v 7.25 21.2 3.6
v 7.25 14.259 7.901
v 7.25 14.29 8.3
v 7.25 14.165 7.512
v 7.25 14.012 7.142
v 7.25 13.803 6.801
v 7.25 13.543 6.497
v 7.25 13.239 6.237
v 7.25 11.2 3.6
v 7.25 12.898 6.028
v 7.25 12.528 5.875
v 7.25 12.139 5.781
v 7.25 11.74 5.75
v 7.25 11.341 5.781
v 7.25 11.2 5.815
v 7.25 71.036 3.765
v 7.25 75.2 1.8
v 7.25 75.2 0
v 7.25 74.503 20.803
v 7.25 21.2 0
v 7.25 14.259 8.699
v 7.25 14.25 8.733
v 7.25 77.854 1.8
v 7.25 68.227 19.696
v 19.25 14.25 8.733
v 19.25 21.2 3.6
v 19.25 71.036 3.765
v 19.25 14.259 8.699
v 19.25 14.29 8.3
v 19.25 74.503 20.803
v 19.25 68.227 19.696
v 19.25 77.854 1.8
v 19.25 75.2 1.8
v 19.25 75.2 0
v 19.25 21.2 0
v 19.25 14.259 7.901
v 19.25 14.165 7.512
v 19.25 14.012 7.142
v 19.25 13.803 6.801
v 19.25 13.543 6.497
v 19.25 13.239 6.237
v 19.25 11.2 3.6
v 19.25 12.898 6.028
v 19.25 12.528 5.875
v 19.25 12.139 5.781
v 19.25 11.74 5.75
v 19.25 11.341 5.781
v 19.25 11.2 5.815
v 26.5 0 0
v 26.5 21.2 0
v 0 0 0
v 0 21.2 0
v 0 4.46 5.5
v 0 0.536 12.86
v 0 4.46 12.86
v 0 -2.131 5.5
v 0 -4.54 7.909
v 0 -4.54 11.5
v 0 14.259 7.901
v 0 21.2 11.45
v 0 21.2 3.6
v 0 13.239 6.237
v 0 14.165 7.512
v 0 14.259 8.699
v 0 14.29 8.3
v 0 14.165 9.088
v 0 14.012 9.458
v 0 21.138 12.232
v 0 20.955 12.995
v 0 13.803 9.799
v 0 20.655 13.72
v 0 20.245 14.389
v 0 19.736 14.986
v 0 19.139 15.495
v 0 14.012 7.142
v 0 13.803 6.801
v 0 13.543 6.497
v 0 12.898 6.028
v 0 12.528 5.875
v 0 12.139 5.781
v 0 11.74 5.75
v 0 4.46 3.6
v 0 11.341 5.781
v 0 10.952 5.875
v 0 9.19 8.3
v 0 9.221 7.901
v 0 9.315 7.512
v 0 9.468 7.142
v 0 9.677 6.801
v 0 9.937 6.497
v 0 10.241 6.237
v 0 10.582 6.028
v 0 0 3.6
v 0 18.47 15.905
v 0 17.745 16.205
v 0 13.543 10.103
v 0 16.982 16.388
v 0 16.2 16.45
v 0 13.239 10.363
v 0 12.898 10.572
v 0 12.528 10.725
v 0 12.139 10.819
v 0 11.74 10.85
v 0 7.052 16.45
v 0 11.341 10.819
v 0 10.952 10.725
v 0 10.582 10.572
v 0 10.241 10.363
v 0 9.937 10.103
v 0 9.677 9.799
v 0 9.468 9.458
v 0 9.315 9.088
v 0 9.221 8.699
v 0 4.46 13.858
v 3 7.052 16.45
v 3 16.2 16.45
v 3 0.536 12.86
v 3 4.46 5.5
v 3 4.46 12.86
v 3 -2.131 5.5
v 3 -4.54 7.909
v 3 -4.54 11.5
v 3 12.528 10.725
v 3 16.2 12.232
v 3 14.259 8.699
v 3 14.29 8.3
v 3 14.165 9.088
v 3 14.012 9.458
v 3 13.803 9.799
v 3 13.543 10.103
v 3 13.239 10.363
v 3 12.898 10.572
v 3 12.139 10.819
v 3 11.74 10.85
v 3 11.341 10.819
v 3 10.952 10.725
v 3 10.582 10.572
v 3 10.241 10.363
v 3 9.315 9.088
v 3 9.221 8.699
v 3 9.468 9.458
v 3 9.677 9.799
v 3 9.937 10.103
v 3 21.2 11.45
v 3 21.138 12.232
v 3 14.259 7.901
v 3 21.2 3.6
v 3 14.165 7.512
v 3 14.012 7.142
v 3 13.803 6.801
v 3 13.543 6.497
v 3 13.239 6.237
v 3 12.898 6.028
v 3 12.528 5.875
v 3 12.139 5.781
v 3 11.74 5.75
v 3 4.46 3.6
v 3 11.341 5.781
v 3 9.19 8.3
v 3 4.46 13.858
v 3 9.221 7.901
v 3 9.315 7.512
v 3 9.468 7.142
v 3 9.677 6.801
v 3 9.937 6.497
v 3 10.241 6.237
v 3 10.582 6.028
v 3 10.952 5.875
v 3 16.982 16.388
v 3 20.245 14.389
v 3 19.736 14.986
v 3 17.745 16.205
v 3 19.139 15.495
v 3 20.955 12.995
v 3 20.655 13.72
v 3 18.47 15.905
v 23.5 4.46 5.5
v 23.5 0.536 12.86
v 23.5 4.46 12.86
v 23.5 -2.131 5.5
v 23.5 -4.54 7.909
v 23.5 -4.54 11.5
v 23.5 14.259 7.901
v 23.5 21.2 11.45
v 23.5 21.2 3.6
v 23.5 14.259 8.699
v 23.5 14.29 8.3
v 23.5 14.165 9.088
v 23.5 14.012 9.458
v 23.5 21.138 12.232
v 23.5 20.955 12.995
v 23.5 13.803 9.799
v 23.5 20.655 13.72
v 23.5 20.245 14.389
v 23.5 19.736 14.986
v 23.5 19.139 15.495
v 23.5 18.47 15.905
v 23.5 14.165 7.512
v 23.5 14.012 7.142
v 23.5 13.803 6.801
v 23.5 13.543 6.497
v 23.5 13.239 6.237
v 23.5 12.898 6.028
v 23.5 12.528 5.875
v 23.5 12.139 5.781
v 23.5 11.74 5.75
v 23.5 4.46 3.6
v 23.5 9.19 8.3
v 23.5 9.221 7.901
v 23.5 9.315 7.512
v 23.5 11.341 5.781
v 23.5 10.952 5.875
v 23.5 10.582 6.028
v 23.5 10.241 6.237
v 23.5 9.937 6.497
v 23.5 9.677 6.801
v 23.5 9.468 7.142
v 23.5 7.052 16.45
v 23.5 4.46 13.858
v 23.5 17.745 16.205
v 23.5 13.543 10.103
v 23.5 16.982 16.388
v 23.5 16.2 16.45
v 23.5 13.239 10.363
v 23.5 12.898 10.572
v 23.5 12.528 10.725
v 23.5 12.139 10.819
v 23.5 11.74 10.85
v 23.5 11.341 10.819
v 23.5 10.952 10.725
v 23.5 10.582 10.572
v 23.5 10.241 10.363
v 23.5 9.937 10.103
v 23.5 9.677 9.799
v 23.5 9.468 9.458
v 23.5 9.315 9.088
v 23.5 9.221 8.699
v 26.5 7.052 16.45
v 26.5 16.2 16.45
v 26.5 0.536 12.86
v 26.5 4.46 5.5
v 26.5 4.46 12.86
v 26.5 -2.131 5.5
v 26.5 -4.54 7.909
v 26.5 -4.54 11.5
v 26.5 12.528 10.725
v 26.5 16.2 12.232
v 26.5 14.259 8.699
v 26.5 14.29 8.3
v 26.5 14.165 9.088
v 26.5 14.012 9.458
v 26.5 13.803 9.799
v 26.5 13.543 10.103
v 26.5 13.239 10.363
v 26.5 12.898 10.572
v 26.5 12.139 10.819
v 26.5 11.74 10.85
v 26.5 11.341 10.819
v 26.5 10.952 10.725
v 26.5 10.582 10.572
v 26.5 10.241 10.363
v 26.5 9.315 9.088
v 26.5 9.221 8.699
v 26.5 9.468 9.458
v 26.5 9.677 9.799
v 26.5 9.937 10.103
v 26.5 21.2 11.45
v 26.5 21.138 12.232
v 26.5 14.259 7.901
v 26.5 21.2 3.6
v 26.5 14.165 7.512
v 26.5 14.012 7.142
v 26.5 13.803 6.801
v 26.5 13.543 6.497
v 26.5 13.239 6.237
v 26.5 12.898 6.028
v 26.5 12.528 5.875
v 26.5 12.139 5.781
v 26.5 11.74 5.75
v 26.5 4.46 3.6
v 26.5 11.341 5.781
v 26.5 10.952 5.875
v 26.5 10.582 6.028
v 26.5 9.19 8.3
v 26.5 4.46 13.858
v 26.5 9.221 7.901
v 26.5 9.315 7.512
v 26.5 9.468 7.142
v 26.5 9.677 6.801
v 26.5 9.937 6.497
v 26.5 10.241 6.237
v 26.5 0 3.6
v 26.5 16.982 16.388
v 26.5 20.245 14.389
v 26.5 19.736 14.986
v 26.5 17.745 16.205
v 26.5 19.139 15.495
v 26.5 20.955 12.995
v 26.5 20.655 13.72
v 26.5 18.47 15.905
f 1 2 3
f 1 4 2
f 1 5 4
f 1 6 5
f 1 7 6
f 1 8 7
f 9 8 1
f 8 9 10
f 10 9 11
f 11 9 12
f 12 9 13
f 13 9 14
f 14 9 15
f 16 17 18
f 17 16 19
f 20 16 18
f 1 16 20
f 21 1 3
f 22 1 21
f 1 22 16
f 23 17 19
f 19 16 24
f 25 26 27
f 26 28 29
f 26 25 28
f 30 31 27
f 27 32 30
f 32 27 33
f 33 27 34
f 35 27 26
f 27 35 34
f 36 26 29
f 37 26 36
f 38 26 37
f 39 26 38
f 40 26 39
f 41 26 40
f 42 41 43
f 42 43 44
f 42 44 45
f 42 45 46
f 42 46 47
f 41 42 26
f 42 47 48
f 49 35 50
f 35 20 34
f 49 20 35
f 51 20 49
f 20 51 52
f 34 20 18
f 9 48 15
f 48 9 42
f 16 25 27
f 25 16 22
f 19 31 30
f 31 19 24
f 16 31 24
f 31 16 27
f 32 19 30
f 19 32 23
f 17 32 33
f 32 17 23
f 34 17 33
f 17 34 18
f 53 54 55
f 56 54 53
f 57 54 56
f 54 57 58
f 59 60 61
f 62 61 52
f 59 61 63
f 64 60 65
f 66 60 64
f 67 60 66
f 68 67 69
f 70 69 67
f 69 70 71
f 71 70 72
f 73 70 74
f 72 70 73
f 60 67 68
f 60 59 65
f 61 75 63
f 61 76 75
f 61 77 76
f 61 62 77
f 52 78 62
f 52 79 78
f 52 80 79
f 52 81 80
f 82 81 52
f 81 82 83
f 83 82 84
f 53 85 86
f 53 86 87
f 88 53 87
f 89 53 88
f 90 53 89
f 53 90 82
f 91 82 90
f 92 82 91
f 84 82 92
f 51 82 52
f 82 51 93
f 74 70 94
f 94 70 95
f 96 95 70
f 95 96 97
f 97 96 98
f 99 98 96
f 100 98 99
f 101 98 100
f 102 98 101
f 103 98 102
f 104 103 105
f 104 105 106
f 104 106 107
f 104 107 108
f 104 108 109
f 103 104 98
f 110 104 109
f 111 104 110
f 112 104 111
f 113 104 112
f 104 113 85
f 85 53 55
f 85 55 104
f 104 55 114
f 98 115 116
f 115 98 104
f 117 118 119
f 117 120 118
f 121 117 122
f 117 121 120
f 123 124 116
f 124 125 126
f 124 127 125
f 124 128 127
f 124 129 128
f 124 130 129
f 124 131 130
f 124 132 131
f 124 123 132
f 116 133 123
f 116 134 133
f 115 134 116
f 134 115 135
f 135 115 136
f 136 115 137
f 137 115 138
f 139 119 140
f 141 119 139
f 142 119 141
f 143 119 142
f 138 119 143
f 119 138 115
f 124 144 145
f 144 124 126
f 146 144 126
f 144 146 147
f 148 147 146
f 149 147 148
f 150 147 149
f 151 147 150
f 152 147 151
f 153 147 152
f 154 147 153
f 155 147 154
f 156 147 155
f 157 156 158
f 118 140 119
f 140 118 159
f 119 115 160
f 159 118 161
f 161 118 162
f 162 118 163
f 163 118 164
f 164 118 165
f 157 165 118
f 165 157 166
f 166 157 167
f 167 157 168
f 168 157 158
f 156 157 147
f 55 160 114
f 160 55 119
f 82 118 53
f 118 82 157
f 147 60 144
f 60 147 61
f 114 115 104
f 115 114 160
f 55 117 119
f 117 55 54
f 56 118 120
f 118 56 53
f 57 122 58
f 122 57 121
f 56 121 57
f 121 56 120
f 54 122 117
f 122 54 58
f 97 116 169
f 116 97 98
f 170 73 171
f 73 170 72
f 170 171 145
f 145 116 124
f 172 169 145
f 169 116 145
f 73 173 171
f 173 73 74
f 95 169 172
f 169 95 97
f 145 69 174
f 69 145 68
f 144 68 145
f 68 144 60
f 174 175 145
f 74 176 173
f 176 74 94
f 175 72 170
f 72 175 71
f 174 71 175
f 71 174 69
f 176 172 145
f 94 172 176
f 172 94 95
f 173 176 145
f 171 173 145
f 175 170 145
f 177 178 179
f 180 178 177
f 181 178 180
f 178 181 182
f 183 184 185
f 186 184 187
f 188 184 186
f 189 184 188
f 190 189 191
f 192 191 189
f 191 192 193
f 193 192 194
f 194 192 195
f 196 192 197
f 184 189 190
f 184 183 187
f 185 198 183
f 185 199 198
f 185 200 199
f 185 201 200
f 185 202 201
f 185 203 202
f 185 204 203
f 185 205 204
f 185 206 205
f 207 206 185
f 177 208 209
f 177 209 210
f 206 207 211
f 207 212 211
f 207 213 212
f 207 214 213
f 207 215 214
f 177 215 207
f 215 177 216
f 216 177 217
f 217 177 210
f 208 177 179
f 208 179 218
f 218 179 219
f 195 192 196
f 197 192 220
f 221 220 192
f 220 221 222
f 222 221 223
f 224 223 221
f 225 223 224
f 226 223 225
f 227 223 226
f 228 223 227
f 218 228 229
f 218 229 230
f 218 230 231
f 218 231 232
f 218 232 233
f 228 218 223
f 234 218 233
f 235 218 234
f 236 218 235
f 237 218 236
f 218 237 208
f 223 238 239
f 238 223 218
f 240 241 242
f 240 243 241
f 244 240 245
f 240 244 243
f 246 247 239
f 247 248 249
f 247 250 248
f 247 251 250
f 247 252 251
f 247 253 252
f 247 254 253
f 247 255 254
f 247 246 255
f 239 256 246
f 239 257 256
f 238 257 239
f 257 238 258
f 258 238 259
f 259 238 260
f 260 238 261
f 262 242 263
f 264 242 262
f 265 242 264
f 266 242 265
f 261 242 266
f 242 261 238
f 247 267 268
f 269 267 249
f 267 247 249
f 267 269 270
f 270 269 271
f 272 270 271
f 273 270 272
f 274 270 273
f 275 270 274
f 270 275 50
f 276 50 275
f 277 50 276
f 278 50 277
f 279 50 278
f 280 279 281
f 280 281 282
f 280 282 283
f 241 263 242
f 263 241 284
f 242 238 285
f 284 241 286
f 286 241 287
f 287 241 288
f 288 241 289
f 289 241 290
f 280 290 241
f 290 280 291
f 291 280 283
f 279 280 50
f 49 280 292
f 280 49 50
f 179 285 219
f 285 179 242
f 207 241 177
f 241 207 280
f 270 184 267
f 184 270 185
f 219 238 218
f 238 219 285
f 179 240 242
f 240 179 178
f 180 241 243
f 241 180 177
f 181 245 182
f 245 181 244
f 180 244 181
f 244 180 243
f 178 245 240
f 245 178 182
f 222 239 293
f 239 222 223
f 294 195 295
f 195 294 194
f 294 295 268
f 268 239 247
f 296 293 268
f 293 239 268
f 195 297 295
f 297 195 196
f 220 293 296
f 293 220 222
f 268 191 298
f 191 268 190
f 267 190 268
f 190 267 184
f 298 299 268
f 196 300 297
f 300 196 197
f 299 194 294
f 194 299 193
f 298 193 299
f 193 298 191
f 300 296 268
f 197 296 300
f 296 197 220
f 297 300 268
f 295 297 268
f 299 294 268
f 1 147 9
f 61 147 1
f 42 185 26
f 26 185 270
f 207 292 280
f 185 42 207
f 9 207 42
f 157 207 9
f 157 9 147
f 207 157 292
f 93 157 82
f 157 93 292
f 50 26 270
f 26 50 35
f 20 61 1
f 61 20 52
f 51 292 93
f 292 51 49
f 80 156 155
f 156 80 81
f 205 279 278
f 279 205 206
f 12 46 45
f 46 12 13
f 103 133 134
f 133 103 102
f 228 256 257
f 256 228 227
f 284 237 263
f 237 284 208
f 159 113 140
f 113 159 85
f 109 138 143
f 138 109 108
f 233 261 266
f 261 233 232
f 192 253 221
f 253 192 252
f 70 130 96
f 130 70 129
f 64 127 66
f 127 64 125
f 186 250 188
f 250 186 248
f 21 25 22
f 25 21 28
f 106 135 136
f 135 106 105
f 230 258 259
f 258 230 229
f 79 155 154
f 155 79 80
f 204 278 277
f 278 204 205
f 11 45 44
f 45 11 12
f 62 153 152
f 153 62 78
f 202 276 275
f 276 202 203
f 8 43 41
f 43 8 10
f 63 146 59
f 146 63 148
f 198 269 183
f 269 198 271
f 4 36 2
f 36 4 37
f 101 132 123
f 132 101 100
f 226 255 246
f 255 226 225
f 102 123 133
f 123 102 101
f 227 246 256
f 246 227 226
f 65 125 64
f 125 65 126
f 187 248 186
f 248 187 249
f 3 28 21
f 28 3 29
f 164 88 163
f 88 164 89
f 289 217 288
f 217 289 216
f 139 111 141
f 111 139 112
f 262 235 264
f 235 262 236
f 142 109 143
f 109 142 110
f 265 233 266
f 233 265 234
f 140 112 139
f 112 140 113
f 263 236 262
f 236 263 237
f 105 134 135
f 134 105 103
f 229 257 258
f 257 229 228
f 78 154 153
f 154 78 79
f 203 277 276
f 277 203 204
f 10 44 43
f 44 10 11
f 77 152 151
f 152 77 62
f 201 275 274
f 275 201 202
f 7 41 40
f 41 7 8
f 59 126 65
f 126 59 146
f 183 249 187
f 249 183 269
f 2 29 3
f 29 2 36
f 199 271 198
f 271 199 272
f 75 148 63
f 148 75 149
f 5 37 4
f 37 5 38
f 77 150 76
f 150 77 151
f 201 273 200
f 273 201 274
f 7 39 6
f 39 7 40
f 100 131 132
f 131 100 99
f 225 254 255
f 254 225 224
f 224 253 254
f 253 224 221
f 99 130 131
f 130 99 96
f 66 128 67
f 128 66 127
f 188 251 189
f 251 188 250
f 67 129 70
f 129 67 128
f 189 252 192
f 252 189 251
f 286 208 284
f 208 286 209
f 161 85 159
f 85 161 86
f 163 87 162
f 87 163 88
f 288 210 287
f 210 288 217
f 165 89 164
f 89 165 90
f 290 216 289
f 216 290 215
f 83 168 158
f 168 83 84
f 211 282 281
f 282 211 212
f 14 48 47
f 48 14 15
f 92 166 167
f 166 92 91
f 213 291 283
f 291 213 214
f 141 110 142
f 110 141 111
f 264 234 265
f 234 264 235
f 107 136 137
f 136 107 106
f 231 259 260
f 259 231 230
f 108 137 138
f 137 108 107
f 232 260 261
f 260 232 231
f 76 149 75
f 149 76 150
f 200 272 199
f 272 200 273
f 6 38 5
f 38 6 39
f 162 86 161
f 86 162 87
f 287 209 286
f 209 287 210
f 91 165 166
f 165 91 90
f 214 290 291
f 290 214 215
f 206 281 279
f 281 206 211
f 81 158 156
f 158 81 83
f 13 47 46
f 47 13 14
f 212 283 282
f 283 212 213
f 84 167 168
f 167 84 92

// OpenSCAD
$fn=40;

module b1()
{
    difference()
    {
        union()
        {
            difference()
            {
                cube([3,16.74,16.45]);
                
                translate([0,11.74,11.45])
                    cube([3,20,16.45]);
                
                translate([0,-8,20])
                    rotate([-45,0,0])
                        cube([3,10,10]);
            }
            
            translate([0,11.74,11.45])
                rotate([0,90,0])
                    cylinder(r=5,h=3);
            
            
            color("yellow")
                translate([0,-9,5.5])
                    difference()
                    {
                        cube([3,9,7.36]);
                        
                        translate([0,-6,-2])
                        rotate([-45,0,0])
                        cube([3,9,7.36]);


                        translate([0,0,6])
                        rotate([15,0,0])
                        cube([3,9,7.36]);
                    }
        }
        
    }
    
}   

module l1()
{
    translate([(26.5-12)/2,11.2,0])
    {
        color("green")
        difference()
        {
            union()
            {
                difference()
                {
                    cube([12,67,9]);
                    translate([0,0,9])
                        rotate([-5,0,0])
                            cube([12,67,9]);
                }
                
                
                translate([0,60.5,0])
                    rotate([10,0,0])
                        cube([12,7,20]);
            }
            
            
            translate([0,67.5,-3])
                rotate([10,0,0])
                    cube([12,4,25]);
            translate([0,64,0])
                cube([12,3.5,1.8]);
        }
    }
}

difference()
{
    union()
    {
        color("red")
            cube([26.5,21.2,3.6]);

        l1();
        
        translate([0,4.46,0])
        {
            b1();
            translate([26.5-3,0,0])
                b1();
        }
    }
    translate([0,11.74,8.3])
        rotate([0,90,0])
            cylinder(r=2.55,h=26.5);
}
